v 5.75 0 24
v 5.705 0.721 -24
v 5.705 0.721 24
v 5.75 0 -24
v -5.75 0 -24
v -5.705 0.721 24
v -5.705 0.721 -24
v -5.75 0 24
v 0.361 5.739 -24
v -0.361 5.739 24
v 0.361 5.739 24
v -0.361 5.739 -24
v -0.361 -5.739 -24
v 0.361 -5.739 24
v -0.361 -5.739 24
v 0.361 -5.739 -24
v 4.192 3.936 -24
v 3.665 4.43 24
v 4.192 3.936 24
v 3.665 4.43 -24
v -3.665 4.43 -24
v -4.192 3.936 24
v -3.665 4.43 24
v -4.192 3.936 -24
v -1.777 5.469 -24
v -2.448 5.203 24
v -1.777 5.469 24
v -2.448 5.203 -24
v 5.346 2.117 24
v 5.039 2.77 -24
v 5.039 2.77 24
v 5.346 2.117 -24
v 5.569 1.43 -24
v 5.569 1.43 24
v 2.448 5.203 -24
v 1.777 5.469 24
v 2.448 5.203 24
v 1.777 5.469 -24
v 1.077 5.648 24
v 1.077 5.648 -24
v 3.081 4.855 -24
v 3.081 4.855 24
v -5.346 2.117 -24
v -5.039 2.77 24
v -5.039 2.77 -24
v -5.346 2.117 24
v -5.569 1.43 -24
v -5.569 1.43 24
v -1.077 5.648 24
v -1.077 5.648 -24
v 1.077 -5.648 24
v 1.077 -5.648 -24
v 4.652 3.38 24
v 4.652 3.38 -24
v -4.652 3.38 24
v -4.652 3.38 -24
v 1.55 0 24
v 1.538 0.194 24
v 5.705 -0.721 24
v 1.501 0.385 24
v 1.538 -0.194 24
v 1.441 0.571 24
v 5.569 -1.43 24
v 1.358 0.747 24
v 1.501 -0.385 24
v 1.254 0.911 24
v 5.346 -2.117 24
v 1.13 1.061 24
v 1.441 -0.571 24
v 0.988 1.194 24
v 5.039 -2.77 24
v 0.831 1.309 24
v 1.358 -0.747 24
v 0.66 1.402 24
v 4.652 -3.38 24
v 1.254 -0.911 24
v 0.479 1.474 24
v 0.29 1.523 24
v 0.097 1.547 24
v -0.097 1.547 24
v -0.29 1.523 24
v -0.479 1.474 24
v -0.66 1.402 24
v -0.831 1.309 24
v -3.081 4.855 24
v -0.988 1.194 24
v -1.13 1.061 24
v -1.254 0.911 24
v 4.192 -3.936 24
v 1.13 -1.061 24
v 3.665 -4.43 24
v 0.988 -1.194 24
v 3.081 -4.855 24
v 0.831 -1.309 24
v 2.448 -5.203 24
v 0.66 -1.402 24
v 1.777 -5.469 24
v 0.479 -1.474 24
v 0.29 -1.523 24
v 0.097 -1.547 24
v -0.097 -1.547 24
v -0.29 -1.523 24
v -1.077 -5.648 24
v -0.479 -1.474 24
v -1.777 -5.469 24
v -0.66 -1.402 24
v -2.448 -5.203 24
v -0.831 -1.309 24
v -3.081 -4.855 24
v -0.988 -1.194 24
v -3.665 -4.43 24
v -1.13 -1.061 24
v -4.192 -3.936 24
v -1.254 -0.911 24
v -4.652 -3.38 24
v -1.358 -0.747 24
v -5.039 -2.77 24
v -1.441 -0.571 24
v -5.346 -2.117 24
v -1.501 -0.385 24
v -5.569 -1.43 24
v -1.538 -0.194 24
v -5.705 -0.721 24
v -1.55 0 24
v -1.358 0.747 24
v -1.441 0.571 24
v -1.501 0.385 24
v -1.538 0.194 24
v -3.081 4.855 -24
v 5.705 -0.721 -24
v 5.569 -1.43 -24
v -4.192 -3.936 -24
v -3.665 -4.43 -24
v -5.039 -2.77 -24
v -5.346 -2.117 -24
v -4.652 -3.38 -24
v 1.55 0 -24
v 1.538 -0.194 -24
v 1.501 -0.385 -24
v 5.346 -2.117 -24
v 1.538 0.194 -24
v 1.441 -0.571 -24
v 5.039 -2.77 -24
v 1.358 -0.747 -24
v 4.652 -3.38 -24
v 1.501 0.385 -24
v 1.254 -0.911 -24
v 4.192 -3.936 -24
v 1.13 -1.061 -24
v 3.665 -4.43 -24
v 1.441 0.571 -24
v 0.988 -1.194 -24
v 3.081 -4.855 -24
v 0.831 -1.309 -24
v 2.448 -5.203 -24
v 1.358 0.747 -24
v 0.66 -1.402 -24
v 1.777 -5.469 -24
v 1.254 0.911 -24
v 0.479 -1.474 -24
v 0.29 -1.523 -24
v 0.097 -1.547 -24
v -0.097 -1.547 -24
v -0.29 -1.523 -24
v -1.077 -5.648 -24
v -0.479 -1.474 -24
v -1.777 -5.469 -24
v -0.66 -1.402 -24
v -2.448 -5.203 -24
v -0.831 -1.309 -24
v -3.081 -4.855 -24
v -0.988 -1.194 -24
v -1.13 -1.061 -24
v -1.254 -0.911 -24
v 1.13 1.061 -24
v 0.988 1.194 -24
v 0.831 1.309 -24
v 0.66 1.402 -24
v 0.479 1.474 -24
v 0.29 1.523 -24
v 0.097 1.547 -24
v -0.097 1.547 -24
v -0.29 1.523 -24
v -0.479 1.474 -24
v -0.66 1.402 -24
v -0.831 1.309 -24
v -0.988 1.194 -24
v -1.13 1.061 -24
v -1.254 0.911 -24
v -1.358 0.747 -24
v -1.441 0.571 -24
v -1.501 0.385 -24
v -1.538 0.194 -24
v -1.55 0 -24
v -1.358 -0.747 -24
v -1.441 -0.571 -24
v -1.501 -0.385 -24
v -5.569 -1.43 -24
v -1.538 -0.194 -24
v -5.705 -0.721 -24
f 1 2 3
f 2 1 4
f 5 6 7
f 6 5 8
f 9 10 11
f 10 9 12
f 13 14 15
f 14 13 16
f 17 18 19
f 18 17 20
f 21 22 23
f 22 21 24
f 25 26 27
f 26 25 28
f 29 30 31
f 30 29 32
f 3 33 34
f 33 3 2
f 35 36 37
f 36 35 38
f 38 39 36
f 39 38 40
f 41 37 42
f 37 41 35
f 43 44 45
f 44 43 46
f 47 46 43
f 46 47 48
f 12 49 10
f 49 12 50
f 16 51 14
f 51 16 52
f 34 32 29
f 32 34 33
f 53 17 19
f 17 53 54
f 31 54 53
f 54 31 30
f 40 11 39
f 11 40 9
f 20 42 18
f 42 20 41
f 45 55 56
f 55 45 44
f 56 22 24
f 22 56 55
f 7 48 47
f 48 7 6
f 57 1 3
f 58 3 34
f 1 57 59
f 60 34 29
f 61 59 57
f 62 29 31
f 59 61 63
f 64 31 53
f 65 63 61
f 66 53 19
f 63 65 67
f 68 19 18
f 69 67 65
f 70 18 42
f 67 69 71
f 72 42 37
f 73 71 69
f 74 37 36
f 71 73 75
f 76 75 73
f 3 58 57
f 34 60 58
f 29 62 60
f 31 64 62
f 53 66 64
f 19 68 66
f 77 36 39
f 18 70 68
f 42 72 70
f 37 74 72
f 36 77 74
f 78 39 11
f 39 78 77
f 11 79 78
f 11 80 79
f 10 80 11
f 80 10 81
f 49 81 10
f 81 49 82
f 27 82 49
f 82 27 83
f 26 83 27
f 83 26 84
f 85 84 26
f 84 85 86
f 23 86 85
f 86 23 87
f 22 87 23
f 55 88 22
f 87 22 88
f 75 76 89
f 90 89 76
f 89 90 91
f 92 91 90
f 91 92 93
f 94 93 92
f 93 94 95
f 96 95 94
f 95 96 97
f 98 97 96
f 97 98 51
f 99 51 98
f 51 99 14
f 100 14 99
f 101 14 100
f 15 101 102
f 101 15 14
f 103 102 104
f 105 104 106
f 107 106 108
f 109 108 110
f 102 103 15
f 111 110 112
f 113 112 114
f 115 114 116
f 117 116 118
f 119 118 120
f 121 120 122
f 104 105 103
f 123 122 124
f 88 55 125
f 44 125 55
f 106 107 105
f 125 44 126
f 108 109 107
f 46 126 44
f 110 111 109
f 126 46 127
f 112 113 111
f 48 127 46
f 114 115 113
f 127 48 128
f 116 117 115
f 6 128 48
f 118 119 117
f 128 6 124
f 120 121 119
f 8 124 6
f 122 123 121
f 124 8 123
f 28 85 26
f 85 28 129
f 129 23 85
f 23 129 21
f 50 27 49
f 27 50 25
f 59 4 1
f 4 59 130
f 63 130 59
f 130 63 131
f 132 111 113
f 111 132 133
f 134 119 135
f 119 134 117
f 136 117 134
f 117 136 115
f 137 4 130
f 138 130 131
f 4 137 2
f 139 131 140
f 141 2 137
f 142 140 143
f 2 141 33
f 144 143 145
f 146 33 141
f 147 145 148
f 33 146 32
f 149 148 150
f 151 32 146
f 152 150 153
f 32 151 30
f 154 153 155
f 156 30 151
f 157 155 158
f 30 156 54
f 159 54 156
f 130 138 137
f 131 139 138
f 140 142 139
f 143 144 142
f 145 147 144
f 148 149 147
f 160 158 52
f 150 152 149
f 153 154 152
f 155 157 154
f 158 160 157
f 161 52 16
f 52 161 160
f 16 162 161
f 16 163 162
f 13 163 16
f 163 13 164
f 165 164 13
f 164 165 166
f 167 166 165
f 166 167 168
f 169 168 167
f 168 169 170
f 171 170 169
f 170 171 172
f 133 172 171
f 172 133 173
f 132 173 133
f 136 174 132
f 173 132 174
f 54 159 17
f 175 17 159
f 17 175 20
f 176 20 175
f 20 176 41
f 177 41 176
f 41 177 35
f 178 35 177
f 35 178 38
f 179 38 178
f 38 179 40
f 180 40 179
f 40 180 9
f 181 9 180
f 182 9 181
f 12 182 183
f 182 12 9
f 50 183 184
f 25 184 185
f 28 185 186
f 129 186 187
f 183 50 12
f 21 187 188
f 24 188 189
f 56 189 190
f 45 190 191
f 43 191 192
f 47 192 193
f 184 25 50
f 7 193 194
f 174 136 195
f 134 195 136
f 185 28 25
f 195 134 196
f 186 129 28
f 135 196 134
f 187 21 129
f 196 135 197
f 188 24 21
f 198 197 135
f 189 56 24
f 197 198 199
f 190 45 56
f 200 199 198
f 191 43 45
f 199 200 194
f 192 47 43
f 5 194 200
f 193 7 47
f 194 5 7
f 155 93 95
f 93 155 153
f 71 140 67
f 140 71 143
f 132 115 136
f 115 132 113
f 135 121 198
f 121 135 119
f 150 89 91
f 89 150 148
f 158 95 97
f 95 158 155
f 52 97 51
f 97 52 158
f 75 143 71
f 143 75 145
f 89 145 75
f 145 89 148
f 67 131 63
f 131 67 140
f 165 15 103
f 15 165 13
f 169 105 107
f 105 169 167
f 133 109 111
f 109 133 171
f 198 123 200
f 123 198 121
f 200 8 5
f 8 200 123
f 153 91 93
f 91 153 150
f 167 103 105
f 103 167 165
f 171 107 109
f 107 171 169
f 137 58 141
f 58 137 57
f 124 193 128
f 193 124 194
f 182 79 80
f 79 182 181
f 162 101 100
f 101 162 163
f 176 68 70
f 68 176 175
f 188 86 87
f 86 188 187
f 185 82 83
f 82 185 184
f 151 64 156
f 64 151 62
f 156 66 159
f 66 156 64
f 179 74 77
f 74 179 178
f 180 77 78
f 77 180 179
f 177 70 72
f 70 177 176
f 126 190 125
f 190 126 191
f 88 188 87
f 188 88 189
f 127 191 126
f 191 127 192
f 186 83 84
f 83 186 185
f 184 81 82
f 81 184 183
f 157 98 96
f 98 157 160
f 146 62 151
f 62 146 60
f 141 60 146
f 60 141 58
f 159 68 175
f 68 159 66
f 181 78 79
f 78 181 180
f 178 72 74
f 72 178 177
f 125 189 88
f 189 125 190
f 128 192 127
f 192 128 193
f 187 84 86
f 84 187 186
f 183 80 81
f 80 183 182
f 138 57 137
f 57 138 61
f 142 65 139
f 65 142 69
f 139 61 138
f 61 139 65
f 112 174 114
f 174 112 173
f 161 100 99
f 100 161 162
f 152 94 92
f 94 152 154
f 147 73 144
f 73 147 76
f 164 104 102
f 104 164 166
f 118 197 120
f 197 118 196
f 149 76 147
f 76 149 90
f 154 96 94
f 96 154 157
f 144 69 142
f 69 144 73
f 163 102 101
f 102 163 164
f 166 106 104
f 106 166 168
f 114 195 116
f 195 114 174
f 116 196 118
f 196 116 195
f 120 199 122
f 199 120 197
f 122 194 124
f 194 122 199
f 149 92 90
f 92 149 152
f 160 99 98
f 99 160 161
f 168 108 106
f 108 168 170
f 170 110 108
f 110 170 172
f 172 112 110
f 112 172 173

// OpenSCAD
$fn = 50;


difference() {
	union() {
		translate(v = [0, 0, -24.0000000000]) {
			cylinder(h = 48, r = 5.7500000000);
		}
	}
	union() {
		translate(v = [0, 0, -100.0000000000]) {
			cylinder(h = 200, r = 1.5500000000);
		}
	}
}
